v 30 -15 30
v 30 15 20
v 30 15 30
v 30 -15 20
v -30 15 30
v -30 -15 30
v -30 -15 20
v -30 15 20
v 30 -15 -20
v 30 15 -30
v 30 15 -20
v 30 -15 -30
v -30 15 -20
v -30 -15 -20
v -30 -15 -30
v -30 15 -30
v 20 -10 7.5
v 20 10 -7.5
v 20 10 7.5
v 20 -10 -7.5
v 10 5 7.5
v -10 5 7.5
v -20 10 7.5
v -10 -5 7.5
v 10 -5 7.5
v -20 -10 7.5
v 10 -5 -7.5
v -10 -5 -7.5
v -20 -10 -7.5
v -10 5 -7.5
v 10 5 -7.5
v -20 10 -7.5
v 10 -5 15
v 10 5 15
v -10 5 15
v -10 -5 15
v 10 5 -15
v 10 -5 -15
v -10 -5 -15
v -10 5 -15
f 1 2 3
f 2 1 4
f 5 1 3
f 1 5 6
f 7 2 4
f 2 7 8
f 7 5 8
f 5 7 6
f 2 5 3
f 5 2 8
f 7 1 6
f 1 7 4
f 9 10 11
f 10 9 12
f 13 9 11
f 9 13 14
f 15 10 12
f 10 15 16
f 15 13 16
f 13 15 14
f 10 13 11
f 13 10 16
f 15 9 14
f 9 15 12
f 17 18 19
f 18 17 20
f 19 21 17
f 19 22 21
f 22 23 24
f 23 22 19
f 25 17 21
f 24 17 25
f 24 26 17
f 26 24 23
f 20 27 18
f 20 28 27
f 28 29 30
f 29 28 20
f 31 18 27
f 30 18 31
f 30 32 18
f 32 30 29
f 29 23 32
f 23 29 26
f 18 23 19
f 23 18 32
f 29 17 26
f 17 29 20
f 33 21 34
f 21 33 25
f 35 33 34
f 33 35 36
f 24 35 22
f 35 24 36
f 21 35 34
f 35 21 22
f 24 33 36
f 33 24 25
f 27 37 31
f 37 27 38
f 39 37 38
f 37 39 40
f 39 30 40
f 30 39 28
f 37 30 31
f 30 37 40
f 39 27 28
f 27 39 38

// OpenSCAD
// Define dimensions for the blocks
large_block_size = [60, 30, 10];  // [length, width, height]
medium_block_size = [40, 20, 15]; // Adjusted height to match original model
small_block_size = [20, 10, 10];

// Define positions for each block
large_block_positions = [
    [0, 0, 25],  // First large block (aligned centrally at the top)
    [0, 0, -25]  // Second large block (aligned centrally at the base)
];

medium_block_positions = [
    [0, 0, 0],   // First medium block (aligned centrally between large blocks)
    [0, 0, 0]    // Second medium block (added and aligned centrally)
];

small_block_positions = [
    [0, 0, 10],  // First small block (aligned centrally and vertically with medium block)
    [0, 0, -10]  // Second small block (added and positioned symmetrically opposite)
];

// Create the blocks
module large_rectangular_block() {
    cube(large_block_size, center = true);
}

module medium_rectangular_block() {
    cube(medium_block_size, center = true);
}

module small_rectangular_block() {
    cube(small_block_size, center = true);
}

// Assemble the model
for (pos = large_block_positions) {
    translate(pos) large_rectangular_block();
}

for (pos = medium_block_positions) {
    translate(pos) medium_rectangular_block();
}

for (pos = small_block_positions) {
    translate(pos) small_rectangular_block();
}
